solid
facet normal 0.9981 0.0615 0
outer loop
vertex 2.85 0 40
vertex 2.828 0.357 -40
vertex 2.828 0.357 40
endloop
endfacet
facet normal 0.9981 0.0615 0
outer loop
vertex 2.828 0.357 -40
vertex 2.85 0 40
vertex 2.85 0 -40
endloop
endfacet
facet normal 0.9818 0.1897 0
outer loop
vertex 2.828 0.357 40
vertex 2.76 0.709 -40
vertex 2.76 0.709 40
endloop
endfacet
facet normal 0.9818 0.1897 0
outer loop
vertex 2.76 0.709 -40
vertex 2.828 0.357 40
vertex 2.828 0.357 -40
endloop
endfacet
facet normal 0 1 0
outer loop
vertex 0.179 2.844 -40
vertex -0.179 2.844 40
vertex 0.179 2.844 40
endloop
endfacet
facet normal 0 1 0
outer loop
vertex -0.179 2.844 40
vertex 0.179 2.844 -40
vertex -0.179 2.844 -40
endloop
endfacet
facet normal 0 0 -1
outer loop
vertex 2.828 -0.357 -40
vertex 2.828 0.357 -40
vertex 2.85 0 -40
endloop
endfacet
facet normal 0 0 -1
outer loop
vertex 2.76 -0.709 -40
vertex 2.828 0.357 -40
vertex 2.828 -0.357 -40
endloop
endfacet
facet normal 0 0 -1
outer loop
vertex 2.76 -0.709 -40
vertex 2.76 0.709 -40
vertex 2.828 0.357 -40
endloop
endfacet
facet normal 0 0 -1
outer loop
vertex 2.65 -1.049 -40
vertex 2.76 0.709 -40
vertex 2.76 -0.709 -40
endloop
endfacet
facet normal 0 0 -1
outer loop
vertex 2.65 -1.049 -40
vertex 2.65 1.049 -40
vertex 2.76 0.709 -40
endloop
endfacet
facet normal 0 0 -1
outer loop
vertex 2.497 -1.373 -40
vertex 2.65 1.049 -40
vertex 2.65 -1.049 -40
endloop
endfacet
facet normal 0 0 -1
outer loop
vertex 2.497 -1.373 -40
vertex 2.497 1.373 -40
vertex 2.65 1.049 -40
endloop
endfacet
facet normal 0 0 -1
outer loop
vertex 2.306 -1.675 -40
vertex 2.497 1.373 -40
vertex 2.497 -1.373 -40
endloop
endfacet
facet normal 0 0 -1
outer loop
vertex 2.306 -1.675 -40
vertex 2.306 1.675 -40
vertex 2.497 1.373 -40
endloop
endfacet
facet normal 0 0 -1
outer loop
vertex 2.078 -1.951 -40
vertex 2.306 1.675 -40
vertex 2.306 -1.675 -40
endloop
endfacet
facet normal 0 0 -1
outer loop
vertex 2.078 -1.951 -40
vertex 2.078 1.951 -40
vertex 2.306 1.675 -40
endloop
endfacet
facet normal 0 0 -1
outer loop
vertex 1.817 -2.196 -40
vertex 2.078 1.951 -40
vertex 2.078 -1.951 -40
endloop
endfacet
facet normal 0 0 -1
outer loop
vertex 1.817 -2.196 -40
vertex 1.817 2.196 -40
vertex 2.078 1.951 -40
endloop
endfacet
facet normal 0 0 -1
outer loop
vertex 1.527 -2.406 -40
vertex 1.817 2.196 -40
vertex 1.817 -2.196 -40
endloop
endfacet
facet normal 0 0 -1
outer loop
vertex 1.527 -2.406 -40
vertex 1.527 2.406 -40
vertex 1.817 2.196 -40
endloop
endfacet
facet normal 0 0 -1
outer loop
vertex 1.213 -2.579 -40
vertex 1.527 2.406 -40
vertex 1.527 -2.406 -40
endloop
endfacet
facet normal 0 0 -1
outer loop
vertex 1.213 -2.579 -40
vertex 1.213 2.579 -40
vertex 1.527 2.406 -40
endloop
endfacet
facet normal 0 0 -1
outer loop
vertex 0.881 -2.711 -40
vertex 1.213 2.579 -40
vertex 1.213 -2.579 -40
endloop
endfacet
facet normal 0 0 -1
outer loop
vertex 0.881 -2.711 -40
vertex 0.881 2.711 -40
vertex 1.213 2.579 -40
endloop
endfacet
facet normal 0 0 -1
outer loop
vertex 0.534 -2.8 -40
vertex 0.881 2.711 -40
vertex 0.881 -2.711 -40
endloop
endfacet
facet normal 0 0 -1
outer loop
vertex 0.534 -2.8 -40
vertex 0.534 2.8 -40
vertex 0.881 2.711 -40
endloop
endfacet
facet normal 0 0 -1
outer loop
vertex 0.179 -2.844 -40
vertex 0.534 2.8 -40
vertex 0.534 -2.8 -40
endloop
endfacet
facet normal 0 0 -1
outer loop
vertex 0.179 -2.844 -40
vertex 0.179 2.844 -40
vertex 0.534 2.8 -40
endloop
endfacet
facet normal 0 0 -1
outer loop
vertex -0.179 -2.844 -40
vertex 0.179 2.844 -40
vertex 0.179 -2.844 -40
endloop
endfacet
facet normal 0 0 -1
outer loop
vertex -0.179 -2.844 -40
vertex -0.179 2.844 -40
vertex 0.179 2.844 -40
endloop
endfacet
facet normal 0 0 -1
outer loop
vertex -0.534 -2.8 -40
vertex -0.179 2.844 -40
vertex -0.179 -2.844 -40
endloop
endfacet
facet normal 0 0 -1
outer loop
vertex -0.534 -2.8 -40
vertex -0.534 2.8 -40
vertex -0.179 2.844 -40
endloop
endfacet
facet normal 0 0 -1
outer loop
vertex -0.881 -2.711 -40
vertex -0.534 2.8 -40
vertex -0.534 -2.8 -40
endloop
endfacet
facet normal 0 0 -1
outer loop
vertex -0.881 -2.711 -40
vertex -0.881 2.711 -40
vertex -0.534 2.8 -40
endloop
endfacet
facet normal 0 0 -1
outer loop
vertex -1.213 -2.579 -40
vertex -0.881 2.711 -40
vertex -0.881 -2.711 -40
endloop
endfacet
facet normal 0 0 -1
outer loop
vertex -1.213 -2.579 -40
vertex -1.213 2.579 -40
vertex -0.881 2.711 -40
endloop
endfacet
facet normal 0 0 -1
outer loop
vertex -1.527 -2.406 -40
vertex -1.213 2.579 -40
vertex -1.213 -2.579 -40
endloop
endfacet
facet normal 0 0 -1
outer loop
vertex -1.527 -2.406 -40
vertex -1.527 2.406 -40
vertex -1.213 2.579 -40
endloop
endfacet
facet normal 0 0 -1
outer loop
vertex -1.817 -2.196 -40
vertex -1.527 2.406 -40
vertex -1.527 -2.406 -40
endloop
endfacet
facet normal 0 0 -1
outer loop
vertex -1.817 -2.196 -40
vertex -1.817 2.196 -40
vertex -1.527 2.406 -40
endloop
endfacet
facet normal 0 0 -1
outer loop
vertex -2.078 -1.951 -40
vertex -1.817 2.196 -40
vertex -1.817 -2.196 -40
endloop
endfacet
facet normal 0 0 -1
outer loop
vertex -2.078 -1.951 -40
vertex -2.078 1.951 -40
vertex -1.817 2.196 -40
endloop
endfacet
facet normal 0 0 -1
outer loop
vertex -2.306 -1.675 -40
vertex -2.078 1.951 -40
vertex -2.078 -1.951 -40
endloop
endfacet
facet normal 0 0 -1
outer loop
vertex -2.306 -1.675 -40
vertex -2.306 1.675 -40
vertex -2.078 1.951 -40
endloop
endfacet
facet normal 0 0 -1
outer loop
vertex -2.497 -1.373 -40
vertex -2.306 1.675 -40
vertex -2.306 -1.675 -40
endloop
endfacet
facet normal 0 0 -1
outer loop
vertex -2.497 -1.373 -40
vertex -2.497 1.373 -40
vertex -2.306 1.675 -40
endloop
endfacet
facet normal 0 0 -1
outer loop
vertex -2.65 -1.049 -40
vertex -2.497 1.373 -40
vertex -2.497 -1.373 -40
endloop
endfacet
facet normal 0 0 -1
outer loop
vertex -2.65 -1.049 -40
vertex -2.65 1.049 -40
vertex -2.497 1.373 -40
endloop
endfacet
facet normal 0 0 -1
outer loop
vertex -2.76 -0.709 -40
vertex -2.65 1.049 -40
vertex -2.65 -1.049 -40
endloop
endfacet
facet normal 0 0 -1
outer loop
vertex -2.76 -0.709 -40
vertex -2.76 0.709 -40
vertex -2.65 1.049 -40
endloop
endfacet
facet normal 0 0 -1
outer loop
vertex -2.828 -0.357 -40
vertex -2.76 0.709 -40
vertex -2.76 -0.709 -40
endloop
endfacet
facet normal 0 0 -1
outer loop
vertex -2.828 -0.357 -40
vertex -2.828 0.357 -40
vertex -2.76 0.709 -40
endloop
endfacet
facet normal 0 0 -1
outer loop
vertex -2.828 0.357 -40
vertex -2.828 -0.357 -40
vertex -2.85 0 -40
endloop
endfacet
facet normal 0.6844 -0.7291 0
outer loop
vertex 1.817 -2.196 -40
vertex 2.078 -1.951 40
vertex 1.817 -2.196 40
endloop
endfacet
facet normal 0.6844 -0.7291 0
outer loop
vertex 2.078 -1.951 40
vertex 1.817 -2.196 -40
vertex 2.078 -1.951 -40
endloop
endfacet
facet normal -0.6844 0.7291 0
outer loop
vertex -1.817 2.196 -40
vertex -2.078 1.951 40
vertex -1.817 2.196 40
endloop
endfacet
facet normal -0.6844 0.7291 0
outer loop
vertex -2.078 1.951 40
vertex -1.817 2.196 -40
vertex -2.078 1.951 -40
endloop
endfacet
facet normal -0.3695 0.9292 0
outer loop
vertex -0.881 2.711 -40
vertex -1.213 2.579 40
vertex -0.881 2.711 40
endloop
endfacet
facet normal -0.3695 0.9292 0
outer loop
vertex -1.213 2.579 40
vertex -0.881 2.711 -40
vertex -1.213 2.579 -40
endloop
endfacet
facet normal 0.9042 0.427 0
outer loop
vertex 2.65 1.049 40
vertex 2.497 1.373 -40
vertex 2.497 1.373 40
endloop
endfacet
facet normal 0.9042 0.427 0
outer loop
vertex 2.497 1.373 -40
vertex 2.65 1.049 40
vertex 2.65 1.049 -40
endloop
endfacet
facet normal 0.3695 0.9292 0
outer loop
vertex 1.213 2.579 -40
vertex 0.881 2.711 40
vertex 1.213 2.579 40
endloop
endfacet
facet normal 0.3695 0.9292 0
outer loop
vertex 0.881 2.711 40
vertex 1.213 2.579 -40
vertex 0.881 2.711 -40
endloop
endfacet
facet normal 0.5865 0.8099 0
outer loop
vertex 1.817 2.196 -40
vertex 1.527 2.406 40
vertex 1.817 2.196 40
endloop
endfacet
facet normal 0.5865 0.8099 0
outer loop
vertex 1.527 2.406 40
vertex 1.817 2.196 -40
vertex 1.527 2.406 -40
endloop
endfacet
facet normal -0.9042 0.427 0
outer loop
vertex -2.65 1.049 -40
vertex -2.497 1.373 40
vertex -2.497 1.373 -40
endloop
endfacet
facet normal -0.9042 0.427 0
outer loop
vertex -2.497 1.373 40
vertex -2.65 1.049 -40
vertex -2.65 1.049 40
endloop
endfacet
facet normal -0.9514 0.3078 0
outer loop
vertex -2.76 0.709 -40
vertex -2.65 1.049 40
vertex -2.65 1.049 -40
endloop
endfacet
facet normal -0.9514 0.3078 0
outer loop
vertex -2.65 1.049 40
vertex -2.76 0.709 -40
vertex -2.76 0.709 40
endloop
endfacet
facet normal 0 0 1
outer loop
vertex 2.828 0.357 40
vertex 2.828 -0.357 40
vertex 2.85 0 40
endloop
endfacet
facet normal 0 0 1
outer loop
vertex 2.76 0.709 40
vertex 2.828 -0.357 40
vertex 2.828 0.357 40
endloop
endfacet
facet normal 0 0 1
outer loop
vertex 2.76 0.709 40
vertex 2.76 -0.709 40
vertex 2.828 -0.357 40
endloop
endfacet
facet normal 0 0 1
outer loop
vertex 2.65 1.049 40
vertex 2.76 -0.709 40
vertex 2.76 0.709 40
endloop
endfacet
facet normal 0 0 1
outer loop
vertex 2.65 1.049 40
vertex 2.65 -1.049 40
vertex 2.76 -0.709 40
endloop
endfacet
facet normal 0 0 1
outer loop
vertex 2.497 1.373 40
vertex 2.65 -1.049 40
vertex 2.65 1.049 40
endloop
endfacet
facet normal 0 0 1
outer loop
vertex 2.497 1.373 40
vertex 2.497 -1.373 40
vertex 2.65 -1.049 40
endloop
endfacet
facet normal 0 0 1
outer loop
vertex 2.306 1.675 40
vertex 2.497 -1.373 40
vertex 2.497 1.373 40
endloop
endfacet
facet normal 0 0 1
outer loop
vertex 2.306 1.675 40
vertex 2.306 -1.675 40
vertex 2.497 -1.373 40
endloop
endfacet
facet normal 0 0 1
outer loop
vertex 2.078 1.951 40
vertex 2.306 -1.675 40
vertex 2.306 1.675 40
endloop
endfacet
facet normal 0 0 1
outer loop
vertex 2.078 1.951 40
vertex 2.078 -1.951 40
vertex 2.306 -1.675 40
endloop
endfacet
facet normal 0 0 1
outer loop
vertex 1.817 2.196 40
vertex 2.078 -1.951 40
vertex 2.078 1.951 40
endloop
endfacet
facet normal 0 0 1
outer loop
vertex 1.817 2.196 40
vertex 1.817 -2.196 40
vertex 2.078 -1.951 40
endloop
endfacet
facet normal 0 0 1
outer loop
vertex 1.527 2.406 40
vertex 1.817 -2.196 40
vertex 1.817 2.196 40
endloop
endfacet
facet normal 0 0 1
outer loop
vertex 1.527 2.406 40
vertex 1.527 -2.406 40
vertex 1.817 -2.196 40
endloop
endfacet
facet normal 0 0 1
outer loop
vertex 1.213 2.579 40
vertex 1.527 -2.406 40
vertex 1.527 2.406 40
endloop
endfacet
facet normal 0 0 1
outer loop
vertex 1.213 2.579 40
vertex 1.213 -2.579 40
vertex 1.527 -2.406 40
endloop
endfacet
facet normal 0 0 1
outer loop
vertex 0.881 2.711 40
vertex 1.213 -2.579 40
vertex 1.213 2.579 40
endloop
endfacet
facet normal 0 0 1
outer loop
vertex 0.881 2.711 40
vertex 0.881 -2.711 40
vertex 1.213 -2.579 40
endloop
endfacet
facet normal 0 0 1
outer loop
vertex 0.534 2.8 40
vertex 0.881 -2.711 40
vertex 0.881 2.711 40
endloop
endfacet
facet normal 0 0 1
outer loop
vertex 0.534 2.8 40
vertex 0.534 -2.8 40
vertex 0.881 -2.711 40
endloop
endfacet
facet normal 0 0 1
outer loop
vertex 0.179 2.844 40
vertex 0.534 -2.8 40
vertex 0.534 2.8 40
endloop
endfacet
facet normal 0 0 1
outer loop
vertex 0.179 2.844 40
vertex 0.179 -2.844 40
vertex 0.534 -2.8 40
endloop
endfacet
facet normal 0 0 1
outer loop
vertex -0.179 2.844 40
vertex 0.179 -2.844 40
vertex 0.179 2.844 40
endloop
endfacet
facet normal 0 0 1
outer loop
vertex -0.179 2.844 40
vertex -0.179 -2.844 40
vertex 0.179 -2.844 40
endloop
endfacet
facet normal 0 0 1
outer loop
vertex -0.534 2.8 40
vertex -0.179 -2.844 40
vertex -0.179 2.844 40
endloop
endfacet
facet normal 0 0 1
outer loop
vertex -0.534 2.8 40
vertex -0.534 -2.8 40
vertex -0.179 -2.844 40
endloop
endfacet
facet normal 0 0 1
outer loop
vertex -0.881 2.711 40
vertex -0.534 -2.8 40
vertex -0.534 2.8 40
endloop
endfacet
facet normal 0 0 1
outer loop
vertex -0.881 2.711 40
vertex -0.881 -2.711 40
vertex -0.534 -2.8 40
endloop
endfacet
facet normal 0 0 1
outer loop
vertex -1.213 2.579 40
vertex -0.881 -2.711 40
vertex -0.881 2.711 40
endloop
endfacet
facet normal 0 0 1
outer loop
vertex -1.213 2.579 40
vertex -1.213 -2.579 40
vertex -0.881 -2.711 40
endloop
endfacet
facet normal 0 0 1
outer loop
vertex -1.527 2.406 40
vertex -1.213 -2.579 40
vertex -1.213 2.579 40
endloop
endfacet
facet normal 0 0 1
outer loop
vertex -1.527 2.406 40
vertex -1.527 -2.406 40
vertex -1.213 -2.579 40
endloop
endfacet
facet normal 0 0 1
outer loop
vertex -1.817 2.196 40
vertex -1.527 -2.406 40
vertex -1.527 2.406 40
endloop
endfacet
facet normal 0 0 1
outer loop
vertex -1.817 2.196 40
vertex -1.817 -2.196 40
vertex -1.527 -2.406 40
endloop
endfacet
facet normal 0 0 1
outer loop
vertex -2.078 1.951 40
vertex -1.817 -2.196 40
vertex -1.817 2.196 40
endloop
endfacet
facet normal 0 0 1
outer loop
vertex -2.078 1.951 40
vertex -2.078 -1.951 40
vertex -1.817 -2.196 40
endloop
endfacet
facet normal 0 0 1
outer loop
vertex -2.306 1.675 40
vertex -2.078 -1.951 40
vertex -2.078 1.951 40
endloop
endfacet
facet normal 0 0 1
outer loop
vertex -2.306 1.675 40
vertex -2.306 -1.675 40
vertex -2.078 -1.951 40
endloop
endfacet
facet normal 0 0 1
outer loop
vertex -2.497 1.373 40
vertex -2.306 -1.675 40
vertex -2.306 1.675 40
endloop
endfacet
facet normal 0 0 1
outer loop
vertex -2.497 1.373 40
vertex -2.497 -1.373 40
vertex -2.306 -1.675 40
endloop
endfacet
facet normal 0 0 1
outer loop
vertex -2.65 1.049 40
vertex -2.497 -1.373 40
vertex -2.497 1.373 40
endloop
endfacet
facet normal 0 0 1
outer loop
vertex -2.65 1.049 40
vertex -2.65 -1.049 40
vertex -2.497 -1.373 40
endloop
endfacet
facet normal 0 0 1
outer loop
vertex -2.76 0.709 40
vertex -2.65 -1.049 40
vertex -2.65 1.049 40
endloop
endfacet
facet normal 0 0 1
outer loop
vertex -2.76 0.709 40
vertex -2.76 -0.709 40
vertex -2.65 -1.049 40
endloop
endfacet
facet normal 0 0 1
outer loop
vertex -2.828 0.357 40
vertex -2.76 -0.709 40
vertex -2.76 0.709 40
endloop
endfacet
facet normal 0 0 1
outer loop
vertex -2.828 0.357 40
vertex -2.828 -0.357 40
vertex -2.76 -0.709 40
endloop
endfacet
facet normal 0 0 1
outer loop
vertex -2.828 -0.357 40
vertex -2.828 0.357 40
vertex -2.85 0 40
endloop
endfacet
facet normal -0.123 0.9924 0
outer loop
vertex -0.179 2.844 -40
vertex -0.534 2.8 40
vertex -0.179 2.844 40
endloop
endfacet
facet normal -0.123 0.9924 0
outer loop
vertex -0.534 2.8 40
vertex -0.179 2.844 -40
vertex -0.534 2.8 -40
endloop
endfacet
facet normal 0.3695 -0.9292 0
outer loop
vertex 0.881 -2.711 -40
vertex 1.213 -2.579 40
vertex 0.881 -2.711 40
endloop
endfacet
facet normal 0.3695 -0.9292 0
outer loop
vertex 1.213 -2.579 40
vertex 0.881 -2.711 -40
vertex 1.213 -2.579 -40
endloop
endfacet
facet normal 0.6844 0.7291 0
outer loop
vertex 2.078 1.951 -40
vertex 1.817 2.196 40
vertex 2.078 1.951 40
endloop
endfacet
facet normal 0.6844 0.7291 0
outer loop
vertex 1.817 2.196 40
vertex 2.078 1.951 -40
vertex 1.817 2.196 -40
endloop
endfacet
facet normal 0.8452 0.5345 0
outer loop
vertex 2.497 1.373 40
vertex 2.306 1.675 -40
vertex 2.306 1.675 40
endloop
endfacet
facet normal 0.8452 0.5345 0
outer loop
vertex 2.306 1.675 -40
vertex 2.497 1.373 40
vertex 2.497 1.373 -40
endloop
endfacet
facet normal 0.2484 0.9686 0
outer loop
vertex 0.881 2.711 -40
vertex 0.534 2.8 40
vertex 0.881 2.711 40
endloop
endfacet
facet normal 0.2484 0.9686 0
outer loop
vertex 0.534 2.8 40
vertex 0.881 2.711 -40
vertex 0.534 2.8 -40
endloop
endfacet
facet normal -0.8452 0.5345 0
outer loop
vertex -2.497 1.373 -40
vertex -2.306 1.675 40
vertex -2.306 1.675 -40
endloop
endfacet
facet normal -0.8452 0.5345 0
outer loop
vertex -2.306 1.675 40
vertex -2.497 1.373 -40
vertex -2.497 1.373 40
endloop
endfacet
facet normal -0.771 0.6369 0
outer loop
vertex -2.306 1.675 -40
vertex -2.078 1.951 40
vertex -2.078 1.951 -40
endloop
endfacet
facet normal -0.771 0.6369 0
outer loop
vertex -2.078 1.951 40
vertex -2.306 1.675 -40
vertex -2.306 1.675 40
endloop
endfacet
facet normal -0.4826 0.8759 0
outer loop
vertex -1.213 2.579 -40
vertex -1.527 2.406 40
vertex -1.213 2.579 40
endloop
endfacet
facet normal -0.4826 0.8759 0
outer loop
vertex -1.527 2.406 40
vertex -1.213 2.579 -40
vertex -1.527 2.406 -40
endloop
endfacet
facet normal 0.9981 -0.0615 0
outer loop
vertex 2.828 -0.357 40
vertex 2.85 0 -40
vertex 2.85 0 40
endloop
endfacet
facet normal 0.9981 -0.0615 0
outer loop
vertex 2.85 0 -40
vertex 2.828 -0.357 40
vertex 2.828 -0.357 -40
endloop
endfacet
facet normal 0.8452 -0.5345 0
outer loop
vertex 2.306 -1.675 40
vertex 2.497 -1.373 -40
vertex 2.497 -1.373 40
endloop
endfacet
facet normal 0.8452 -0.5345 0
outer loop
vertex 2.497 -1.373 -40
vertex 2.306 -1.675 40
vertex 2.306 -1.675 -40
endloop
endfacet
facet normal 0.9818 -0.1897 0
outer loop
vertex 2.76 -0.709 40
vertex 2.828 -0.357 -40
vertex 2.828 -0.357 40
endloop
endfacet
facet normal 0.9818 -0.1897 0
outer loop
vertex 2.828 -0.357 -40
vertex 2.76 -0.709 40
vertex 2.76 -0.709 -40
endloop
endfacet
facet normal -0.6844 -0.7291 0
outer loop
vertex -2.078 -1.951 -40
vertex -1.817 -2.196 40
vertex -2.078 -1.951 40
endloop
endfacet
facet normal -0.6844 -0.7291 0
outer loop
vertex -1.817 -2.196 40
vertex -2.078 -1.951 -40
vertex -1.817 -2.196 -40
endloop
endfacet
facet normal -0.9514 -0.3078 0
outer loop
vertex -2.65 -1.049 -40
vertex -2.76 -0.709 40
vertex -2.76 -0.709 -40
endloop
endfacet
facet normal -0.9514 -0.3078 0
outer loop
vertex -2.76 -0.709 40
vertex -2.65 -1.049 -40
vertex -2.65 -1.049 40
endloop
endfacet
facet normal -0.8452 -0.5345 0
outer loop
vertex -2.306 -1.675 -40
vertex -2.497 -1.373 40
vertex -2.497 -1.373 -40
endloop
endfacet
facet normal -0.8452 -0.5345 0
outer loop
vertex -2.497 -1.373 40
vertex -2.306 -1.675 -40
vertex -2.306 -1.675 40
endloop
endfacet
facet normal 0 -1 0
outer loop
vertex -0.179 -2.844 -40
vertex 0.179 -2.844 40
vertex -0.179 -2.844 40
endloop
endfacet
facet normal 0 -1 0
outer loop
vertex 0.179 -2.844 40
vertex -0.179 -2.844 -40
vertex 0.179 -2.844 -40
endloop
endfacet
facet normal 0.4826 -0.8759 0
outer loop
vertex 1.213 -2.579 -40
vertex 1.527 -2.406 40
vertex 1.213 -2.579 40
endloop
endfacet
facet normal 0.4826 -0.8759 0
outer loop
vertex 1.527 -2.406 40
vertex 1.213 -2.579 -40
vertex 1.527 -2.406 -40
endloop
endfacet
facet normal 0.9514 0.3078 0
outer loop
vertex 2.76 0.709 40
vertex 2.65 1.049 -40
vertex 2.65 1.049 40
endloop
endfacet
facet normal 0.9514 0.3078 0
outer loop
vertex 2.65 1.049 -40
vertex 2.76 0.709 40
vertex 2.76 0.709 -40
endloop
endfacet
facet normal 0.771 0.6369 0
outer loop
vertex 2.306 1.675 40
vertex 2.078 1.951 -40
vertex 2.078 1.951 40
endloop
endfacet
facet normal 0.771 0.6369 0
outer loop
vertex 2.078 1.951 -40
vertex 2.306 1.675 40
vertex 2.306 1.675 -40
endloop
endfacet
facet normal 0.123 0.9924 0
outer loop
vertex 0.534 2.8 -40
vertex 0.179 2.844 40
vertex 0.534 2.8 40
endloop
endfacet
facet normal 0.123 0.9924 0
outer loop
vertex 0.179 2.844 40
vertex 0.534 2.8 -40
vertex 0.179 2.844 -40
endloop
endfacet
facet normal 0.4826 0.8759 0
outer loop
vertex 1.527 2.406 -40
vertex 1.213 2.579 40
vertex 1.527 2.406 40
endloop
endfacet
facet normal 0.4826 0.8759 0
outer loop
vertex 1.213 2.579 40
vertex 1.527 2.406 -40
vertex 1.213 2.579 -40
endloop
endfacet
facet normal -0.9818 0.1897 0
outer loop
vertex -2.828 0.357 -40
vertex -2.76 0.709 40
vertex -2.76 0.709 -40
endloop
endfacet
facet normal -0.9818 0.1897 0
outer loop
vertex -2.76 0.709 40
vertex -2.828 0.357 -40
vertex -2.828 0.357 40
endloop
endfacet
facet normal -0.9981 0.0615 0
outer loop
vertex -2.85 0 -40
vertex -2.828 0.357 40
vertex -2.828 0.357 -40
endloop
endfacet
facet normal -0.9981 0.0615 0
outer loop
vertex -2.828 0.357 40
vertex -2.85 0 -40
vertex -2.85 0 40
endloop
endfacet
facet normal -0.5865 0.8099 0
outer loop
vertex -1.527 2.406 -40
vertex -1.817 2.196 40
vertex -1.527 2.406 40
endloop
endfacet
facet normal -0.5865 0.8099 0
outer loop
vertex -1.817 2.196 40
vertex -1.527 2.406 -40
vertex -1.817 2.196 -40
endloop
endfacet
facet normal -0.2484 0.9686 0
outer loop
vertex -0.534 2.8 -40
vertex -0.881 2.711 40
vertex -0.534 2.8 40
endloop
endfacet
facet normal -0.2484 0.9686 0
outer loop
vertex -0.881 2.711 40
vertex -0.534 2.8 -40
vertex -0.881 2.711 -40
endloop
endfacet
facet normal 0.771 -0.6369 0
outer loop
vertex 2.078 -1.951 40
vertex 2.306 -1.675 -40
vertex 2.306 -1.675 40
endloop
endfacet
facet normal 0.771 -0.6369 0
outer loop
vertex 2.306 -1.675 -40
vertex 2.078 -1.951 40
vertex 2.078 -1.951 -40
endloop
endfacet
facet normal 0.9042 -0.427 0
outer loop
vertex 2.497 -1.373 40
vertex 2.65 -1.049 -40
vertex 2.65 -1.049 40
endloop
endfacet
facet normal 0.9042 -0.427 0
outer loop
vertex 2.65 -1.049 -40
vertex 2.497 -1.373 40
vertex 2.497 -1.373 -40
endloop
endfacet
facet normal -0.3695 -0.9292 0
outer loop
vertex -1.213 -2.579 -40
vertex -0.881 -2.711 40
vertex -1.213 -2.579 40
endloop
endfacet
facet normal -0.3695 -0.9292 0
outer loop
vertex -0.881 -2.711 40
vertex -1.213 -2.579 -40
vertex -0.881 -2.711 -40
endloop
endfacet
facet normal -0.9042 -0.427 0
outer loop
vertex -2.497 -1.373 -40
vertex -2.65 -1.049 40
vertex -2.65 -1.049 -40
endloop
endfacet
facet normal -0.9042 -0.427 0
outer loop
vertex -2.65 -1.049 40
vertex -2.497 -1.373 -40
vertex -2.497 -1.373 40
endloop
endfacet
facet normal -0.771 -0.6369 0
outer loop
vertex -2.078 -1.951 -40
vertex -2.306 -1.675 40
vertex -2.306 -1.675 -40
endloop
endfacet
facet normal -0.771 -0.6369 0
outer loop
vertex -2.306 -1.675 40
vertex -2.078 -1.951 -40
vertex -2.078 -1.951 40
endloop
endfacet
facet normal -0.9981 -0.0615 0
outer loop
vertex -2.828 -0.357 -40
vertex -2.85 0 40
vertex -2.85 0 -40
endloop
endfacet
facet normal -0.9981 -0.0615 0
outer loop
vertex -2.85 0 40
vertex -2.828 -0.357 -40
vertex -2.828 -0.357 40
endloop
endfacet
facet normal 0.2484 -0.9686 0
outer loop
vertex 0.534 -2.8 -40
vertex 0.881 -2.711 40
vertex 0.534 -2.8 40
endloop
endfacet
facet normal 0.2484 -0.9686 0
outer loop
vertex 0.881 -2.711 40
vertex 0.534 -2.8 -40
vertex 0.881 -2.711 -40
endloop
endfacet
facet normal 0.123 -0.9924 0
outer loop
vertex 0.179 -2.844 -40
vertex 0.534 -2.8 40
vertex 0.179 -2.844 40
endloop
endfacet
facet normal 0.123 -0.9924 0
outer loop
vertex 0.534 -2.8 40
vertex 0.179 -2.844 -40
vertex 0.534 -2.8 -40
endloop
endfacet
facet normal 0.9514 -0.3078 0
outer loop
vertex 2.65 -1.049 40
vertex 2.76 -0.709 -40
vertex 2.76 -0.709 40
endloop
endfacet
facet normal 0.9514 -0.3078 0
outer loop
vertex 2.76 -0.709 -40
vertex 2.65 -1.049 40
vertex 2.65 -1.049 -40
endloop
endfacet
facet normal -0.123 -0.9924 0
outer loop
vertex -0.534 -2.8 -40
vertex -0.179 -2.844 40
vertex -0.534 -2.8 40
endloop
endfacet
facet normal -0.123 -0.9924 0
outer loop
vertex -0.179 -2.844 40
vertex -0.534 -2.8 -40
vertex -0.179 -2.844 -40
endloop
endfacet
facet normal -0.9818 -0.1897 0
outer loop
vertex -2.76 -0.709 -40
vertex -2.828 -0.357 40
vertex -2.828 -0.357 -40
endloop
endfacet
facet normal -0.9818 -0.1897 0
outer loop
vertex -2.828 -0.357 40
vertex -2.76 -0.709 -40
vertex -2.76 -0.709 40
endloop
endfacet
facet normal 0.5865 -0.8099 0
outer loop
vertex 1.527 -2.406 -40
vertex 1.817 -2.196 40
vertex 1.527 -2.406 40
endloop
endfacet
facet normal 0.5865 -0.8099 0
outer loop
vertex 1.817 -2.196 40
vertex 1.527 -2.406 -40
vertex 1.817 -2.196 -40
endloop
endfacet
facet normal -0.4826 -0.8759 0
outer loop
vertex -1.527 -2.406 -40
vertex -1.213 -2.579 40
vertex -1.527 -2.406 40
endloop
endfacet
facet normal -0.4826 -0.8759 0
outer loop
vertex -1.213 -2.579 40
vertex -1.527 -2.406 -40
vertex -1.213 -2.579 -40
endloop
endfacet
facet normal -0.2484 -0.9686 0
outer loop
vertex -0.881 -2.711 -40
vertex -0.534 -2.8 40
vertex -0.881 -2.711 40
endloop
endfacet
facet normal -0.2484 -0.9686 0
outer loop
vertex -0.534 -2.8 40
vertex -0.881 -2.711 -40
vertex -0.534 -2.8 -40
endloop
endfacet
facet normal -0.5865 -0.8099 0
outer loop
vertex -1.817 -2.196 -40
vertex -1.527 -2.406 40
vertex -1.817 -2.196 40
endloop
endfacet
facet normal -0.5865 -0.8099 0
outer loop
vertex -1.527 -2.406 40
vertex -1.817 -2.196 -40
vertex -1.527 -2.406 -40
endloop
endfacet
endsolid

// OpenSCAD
$fn = 50;


difference() {
	union() {
		translate(v = [0, 0, -40.0000000000]) {
			cylinder(h = 80, r = 2.8500000000);
		}
	}
	union() {
		translate(v = [0, 0, -100.0000000000]) {
			cylinder(h = 200, r = 0);
		}
	}
}
